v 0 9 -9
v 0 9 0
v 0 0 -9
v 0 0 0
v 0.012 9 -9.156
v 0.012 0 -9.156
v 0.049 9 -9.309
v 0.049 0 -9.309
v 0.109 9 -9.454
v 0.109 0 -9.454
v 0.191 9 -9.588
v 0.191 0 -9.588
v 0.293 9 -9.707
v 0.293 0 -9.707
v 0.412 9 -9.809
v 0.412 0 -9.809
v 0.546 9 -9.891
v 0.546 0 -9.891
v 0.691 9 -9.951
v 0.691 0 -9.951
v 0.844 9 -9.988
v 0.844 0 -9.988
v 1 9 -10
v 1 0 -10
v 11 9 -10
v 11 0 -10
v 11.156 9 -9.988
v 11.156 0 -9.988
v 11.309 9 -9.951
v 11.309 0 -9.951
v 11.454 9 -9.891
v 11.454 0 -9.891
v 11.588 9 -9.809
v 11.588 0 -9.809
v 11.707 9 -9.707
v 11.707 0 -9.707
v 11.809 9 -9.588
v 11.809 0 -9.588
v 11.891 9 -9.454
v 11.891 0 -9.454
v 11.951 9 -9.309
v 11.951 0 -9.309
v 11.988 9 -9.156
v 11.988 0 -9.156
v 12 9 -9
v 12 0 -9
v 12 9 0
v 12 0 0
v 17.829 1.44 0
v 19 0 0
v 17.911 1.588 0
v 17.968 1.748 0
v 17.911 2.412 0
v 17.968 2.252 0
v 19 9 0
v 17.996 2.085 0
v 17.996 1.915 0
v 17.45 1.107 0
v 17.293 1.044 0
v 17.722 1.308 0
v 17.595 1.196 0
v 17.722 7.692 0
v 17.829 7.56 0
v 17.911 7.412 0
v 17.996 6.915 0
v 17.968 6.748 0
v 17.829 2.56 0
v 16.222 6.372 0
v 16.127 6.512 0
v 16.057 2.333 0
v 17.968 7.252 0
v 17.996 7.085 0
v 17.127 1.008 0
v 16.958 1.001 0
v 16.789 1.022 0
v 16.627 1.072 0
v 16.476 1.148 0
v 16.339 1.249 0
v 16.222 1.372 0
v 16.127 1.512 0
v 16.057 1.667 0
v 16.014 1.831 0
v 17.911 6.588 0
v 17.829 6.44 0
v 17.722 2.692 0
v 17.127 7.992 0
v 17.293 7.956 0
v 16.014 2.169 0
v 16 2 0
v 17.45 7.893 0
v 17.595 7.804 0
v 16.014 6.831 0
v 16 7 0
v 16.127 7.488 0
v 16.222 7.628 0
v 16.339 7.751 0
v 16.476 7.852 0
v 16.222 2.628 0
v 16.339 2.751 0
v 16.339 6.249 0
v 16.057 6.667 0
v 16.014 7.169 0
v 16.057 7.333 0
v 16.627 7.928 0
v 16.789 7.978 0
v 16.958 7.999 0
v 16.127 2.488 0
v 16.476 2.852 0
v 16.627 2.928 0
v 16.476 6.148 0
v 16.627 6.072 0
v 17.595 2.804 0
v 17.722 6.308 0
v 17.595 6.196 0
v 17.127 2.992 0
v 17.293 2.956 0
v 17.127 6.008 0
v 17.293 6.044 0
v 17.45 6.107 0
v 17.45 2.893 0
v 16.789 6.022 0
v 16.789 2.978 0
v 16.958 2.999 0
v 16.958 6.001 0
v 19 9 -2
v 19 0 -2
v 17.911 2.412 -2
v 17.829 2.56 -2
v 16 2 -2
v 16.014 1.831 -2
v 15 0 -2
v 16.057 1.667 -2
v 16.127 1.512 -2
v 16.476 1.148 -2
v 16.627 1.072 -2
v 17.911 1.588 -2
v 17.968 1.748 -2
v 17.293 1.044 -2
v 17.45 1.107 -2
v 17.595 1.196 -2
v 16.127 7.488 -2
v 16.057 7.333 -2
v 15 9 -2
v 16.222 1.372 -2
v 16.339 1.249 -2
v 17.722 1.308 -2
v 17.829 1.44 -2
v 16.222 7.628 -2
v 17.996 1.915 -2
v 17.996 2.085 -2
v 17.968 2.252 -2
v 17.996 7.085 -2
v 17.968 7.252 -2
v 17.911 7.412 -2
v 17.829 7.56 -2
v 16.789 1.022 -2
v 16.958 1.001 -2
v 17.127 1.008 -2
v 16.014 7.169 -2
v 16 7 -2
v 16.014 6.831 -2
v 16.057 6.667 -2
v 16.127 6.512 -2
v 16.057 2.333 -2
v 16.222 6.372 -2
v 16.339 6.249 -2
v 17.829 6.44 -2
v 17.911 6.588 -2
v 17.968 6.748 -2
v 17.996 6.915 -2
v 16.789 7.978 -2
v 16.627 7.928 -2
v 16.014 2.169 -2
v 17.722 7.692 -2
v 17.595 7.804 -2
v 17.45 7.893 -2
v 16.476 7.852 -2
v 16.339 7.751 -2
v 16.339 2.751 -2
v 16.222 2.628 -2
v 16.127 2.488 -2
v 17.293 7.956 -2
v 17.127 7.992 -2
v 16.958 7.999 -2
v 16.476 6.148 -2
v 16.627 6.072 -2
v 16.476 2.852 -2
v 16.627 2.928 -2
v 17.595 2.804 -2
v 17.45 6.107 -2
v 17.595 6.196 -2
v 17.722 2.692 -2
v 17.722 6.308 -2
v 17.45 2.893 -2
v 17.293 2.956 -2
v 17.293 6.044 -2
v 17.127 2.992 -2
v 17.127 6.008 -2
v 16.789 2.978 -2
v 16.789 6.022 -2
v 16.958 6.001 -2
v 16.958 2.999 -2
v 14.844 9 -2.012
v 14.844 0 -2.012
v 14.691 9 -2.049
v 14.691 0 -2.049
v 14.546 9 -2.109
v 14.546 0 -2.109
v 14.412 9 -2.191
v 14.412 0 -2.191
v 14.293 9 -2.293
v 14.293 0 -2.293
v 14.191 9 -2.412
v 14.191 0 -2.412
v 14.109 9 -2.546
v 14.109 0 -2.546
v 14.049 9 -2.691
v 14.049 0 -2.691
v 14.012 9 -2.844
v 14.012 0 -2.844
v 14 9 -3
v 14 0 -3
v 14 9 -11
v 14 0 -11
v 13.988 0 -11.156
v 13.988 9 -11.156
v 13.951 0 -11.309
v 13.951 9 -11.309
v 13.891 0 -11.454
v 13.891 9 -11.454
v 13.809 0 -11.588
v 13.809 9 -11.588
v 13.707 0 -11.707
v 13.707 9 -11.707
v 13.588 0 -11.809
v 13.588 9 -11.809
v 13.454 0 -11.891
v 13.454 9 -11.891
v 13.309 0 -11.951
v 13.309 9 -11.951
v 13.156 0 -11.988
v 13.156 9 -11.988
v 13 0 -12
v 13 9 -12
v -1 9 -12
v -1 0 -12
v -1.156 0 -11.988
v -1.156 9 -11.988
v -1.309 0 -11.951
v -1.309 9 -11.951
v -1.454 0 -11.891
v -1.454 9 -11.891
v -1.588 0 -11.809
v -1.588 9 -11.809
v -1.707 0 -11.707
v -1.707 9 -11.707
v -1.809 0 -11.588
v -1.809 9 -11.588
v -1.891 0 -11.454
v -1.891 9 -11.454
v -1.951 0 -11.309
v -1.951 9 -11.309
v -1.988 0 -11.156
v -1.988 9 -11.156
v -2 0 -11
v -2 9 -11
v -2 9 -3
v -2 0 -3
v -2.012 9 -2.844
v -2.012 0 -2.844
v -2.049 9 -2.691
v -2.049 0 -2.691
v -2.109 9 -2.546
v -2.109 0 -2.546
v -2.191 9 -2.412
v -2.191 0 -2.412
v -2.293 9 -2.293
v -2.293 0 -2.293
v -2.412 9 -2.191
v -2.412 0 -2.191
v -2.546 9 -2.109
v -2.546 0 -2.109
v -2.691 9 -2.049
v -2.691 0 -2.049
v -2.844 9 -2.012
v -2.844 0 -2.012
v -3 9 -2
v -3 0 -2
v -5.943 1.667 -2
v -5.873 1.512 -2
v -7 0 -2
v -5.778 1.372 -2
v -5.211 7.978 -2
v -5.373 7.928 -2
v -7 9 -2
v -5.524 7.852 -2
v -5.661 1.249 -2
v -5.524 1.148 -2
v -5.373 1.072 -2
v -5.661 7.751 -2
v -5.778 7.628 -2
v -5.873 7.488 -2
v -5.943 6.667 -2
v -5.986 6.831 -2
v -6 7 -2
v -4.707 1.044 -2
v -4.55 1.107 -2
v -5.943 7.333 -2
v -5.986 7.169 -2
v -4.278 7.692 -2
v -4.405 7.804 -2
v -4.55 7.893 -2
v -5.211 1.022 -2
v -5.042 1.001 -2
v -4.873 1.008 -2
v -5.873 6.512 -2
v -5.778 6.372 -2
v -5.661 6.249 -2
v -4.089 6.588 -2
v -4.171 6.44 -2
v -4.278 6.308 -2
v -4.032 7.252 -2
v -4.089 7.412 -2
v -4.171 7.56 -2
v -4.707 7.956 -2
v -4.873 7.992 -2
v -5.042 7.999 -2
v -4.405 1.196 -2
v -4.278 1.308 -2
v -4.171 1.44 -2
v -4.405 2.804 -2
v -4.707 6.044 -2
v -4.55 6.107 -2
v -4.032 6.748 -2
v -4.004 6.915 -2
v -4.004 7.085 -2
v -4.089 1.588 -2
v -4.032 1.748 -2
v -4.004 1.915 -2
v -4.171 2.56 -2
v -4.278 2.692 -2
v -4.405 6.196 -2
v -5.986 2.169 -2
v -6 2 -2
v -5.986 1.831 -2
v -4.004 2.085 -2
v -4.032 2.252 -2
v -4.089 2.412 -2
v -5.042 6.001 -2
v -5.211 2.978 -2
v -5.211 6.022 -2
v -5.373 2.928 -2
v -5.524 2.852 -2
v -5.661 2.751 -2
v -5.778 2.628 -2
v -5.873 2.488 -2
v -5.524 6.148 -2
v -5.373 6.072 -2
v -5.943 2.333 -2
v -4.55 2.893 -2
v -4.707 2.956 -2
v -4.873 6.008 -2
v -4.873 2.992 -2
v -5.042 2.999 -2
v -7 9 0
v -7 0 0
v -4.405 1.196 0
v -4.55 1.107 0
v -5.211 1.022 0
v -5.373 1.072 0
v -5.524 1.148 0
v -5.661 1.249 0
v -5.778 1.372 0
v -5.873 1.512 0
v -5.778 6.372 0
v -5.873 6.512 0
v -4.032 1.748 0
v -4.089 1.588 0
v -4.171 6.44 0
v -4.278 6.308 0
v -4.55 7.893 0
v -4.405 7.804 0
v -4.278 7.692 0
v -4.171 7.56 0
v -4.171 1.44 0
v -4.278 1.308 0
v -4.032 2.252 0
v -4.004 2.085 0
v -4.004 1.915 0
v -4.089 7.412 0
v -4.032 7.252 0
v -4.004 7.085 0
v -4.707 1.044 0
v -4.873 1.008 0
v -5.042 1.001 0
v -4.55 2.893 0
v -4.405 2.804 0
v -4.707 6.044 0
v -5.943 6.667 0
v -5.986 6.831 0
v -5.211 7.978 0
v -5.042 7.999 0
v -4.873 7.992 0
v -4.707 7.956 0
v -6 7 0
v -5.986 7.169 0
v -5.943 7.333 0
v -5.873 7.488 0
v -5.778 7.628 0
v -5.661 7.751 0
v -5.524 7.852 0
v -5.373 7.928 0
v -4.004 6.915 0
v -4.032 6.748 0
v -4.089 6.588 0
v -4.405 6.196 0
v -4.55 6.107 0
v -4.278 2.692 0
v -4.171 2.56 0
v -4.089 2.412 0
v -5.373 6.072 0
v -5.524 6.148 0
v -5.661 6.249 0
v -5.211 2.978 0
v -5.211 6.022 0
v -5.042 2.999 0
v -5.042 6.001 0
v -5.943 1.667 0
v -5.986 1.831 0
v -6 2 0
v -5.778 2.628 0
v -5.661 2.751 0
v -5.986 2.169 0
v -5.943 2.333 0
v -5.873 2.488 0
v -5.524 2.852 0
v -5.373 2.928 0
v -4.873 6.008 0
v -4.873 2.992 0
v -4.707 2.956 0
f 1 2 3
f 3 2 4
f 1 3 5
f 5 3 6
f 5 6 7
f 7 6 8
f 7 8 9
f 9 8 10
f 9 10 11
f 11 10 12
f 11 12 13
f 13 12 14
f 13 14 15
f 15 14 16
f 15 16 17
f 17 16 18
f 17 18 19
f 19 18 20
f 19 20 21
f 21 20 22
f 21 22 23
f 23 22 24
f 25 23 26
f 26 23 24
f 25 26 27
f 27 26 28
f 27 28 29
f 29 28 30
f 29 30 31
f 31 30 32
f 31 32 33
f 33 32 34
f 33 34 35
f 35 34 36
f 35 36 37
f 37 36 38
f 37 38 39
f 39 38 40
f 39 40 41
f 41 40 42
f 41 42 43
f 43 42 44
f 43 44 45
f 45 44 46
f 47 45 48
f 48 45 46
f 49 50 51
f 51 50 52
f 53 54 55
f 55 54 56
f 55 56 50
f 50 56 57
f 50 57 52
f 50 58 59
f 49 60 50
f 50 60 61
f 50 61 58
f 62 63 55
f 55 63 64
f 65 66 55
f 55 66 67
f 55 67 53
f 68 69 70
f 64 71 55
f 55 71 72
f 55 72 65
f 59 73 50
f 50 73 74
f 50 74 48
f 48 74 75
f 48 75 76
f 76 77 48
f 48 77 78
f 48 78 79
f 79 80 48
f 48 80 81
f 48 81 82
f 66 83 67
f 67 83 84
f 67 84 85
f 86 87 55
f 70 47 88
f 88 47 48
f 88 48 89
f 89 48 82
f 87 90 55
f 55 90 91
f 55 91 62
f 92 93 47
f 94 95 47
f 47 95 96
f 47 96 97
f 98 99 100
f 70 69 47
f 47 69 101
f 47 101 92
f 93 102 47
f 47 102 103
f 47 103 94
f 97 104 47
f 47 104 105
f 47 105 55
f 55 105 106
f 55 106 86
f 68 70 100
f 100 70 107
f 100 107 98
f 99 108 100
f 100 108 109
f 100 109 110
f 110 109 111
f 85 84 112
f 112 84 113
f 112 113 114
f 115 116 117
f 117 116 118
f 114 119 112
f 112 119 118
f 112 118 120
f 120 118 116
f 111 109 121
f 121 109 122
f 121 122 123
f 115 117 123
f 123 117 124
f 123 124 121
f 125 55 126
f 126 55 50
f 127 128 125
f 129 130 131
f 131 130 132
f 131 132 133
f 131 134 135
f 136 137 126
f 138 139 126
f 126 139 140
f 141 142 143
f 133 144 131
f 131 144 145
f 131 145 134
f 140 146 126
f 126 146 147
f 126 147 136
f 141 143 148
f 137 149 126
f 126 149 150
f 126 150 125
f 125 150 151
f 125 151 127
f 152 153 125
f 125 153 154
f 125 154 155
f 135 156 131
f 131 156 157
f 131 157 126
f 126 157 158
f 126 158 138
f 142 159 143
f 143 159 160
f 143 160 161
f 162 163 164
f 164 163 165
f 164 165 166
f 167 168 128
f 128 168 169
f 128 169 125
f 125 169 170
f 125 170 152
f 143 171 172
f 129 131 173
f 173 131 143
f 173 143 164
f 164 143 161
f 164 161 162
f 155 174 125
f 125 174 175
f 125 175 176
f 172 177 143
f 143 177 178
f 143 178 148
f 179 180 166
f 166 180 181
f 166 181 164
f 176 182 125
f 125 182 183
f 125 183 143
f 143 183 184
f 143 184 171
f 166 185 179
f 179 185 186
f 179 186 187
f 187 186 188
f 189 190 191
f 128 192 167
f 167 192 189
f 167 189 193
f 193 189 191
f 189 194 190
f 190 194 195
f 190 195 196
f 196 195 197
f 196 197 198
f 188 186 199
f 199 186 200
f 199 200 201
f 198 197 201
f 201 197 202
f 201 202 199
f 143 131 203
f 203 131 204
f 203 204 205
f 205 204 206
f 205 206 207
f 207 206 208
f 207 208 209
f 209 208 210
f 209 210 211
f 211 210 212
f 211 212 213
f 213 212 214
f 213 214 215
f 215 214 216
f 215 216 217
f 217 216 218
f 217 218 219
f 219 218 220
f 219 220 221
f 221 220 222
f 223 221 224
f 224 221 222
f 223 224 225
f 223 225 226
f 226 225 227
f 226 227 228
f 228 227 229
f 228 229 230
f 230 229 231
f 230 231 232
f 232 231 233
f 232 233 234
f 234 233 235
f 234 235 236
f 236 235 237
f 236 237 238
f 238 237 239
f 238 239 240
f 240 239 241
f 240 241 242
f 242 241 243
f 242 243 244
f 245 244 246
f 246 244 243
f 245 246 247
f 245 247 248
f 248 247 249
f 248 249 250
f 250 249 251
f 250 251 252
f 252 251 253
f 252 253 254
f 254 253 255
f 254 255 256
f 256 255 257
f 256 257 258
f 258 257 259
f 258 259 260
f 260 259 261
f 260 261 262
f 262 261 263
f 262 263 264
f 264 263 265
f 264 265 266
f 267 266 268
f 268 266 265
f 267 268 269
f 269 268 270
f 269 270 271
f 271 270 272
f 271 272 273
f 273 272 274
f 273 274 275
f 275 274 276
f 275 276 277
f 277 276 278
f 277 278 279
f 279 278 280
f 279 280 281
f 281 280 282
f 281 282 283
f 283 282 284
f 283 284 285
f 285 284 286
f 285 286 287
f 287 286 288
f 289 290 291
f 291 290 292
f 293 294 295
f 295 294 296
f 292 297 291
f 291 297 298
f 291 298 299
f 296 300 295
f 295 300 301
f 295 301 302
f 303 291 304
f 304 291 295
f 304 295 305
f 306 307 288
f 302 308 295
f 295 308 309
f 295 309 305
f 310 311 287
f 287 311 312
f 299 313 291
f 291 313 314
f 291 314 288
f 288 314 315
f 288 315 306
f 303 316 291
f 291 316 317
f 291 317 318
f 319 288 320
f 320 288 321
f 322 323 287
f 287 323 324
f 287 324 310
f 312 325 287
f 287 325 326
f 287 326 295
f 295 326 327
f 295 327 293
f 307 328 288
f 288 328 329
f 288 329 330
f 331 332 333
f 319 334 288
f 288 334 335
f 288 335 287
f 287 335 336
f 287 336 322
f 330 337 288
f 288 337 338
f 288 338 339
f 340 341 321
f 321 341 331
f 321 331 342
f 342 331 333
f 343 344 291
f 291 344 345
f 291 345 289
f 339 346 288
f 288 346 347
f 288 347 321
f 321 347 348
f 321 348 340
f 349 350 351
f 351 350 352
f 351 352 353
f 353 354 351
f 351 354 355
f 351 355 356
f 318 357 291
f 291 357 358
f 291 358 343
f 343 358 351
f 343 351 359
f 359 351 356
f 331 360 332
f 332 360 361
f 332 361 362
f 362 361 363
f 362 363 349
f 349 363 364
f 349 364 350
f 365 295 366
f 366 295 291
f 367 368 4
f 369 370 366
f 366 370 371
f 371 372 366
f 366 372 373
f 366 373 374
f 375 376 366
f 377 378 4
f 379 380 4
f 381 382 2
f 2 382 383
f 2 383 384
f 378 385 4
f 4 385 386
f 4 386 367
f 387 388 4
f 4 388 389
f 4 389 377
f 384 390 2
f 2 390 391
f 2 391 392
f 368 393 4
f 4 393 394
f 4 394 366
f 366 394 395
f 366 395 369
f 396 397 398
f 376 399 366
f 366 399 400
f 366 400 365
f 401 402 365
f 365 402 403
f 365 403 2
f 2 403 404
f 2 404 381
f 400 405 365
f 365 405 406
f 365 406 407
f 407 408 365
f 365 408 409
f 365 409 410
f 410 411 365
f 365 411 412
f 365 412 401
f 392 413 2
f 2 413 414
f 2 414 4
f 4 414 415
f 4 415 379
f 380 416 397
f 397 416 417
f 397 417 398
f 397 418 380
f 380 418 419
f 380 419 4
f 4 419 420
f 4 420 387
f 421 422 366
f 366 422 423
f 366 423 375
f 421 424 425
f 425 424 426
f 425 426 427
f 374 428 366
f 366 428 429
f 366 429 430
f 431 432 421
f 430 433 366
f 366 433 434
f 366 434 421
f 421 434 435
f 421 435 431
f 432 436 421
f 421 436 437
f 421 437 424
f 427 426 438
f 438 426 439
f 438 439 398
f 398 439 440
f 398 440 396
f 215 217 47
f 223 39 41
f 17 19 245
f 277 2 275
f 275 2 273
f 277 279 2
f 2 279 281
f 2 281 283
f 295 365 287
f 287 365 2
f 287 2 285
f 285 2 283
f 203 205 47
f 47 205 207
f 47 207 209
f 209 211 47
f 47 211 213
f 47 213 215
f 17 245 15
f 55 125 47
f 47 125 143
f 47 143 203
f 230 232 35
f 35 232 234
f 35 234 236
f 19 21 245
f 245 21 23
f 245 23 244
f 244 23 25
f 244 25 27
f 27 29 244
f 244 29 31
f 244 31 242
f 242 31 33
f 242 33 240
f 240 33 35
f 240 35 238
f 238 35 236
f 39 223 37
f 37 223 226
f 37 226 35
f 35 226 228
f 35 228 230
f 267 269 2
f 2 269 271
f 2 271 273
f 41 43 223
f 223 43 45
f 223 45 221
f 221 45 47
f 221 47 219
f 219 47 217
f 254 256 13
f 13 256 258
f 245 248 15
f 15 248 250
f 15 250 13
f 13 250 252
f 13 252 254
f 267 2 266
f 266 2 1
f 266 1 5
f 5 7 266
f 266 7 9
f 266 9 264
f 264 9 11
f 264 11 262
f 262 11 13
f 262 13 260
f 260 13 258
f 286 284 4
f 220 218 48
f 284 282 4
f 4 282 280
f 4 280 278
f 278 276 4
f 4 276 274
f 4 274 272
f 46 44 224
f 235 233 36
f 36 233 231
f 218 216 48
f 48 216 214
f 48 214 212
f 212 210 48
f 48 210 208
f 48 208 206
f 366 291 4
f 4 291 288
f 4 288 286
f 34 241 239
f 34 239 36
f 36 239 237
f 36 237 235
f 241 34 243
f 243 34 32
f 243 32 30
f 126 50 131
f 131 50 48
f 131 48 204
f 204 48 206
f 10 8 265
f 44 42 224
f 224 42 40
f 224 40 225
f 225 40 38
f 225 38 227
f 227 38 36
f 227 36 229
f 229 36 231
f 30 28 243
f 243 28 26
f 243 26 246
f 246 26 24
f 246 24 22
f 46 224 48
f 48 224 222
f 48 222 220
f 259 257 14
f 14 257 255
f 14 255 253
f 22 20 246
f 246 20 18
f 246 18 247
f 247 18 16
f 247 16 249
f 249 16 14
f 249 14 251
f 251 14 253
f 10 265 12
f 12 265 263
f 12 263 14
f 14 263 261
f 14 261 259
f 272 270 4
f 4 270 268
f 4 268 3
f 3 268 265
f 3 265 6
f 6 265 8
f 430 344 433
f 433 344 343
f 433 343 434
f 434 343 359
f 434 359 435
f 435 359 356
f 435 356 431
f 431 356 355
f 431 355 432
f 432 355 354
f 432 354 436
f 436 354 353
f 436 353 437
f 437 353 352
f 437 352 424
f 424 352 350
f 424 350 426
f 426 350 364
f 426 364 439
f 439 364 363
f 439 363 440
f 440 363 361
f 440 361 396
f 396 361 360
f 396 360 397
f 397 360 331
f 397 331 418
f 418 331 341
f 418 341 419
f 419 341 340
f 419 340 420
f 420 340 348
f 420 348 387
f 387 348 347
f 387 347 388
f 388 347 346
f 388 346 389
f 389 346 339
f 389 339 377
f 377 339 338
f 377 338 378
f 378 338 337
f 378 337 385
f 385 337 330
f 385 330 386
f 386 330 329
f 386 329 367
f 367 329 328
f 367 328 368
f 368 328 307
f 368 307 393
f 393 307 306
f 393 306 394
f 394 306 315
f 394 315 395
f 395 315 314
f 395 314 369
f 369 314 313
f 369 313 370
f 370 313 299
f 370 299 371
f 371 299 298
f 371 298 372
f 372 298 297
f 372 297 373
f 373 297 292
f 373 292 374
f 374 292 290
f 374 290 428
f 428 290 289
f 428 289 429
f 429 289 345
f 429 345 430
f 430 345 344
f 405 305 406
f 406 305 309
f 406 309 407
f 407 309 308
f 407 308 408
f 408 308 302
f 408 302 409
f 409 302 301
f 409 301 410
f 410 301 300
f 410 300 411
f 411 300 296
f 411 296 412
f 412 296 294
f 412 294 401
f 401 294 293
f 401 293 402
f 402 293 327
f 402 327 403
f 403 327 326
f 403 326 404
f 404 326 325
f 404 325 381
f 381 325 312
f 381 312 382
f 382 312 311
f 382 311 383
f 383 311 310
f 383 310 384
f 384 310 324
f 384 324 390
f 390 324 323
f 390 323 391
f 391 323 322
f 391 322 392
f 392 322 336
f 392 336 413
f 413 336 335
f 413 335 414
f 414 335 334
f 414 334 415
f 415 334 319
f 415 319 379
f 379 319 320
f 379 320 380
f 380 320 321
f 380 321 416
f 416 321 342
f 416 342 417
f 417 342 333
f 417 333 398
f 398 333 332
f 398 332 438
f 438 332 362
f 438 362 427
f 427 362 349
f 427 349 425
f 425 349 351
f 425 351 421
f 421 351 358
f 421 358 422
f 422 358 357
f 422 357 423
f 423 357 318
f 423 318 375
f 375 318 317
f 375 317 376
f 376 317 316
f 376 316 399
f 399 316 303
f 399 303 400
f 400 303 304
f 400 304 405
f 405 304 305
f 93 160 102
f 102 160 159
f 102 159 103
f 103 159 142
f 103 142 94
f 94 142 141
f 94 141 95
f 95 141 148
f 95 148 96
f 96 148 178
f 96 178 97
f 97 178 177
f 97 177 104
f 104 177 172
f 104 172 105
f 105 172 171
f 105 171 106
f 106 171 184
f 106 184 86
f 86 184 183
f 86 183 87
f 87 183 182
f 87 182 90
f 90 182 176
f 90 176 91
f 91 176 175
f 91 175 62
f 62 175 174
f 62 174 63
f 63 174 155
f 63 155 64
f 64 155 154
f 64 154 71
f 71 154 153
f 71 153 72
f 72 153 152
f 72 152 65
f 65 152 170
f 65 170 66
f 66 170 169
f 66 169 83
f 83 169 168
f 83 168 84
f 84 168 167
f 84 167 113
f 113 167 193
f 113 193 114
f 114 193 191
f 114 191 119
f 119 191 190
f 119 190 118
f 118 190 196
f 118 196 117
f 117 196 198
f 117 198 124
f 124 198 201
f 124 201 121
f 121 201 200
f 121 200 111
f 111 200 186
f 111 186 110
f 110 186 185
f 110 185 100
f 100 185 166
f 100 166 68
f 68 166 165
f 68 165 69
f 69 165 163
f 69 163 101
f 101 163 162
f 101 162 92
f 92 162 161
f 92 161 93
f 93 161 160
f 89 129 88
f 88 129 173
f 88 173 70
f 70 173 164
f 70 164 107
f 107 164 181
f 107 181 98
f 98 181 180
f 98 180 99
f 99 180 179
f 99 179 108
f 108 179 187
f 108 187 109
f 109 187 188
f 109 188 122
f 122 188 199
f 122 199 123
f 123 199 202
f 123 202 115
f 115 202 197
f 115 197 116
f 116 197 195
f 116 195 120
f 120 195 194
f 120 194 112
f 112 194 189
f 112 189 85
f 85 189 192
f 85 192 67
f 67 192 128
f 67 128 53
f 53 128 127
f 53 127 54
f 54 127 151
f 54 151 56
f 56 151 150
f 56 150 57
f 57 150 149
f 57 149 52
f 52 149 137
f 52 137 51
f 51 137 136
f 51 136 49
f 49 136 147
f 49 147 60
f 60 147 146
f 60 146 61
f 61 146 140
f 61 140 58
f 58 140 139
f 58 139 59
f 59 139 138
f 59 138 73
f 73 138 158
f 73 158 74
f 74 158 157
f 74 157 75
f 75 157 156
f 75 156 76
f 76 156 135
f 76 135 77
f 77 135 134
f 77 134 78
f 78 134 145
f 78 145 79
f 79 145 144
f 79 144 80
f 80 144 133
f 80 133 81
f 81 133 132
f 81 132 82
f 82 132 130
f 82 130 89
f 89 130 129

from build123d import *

# Parameters (mm, degrees)
BOSS_EXTRUDE1_DEPTH = 9
SKETCH2_R           = 1
CUT_EXTRUDE1_DEPTH  = 9


with BuildPart() as part:
    # Sketch1 → Boss-Extrude1 (new body)
    with BuildSketch(Plane(origin=(0, 0, 0), x_dir=(1, 0, 0), z_dir=(0, 1, 0))):
        with BuildLine():
            Line((12, 0), (13.31838565, 0))
            Line((13.31838565, 0), (19, 0))
            Line((19, 0), (19, 2))
            Line((19, 2), (15, 2))
            ThreePointArc((15, 2), (14.292893219, 2.292893219), (14, 3))
            Line((14, 3), (14, 11))
            ThreePointArc((14, 11), (13.707106781, 11.707106781), (13, 12))
            Line((13, 12), (-1, 12))
            ThreePointArc((-1, 12), (-1.707106781, 11.707106781), (-2, 11))
            Line((-2, 11), (-2, 3))
            ThreePointArc((-2, 3), (-2.292893219, 2.292893219), (-3, 2))
            Line((-3, 2), (-7, 2))
            Line((-7, 2), (-7, 0))
            Line((-7, 0), (-0.237668161, 0))
            Line((-0.237668161, 0), (0, 0))
            Line((0, 0), (0, 9))
            ThreePointArc((0, 9), (0.292893219, 9.707106781), (1, 10))
            Line((1, 10), (11, 10))
            ThreePointArc((11, 10), (11.707106781, 9.707106781), (12, 9))
            Line((12, 9), (12, 0))
        make_face()
    extrude(amount=BOSS_EXTRUDE1_DEPTH)

    # Sketch2 → Cut-Extrude1 (cut)
    with BuildSketch(Plane(origin=(0, 0, -2), x_dir=(-1, 0, 0), z_dir=(0, 0, -1))):
        with Locations((-17, 7)):
            Circle(SKETCH2_R)
        with Locations((5, 7)):
            Circle(SKETCH2_R)
        with Locations((-17, 2)):
            Circle(SKETCH2_R)
        with Locations((5, 2)):
            Circle(SKETCH2_R)
    extrude(amount=-CUT_EXTRUDE1_DEPTH, mode=Mode.SUBTRACT)


solid = part.part
